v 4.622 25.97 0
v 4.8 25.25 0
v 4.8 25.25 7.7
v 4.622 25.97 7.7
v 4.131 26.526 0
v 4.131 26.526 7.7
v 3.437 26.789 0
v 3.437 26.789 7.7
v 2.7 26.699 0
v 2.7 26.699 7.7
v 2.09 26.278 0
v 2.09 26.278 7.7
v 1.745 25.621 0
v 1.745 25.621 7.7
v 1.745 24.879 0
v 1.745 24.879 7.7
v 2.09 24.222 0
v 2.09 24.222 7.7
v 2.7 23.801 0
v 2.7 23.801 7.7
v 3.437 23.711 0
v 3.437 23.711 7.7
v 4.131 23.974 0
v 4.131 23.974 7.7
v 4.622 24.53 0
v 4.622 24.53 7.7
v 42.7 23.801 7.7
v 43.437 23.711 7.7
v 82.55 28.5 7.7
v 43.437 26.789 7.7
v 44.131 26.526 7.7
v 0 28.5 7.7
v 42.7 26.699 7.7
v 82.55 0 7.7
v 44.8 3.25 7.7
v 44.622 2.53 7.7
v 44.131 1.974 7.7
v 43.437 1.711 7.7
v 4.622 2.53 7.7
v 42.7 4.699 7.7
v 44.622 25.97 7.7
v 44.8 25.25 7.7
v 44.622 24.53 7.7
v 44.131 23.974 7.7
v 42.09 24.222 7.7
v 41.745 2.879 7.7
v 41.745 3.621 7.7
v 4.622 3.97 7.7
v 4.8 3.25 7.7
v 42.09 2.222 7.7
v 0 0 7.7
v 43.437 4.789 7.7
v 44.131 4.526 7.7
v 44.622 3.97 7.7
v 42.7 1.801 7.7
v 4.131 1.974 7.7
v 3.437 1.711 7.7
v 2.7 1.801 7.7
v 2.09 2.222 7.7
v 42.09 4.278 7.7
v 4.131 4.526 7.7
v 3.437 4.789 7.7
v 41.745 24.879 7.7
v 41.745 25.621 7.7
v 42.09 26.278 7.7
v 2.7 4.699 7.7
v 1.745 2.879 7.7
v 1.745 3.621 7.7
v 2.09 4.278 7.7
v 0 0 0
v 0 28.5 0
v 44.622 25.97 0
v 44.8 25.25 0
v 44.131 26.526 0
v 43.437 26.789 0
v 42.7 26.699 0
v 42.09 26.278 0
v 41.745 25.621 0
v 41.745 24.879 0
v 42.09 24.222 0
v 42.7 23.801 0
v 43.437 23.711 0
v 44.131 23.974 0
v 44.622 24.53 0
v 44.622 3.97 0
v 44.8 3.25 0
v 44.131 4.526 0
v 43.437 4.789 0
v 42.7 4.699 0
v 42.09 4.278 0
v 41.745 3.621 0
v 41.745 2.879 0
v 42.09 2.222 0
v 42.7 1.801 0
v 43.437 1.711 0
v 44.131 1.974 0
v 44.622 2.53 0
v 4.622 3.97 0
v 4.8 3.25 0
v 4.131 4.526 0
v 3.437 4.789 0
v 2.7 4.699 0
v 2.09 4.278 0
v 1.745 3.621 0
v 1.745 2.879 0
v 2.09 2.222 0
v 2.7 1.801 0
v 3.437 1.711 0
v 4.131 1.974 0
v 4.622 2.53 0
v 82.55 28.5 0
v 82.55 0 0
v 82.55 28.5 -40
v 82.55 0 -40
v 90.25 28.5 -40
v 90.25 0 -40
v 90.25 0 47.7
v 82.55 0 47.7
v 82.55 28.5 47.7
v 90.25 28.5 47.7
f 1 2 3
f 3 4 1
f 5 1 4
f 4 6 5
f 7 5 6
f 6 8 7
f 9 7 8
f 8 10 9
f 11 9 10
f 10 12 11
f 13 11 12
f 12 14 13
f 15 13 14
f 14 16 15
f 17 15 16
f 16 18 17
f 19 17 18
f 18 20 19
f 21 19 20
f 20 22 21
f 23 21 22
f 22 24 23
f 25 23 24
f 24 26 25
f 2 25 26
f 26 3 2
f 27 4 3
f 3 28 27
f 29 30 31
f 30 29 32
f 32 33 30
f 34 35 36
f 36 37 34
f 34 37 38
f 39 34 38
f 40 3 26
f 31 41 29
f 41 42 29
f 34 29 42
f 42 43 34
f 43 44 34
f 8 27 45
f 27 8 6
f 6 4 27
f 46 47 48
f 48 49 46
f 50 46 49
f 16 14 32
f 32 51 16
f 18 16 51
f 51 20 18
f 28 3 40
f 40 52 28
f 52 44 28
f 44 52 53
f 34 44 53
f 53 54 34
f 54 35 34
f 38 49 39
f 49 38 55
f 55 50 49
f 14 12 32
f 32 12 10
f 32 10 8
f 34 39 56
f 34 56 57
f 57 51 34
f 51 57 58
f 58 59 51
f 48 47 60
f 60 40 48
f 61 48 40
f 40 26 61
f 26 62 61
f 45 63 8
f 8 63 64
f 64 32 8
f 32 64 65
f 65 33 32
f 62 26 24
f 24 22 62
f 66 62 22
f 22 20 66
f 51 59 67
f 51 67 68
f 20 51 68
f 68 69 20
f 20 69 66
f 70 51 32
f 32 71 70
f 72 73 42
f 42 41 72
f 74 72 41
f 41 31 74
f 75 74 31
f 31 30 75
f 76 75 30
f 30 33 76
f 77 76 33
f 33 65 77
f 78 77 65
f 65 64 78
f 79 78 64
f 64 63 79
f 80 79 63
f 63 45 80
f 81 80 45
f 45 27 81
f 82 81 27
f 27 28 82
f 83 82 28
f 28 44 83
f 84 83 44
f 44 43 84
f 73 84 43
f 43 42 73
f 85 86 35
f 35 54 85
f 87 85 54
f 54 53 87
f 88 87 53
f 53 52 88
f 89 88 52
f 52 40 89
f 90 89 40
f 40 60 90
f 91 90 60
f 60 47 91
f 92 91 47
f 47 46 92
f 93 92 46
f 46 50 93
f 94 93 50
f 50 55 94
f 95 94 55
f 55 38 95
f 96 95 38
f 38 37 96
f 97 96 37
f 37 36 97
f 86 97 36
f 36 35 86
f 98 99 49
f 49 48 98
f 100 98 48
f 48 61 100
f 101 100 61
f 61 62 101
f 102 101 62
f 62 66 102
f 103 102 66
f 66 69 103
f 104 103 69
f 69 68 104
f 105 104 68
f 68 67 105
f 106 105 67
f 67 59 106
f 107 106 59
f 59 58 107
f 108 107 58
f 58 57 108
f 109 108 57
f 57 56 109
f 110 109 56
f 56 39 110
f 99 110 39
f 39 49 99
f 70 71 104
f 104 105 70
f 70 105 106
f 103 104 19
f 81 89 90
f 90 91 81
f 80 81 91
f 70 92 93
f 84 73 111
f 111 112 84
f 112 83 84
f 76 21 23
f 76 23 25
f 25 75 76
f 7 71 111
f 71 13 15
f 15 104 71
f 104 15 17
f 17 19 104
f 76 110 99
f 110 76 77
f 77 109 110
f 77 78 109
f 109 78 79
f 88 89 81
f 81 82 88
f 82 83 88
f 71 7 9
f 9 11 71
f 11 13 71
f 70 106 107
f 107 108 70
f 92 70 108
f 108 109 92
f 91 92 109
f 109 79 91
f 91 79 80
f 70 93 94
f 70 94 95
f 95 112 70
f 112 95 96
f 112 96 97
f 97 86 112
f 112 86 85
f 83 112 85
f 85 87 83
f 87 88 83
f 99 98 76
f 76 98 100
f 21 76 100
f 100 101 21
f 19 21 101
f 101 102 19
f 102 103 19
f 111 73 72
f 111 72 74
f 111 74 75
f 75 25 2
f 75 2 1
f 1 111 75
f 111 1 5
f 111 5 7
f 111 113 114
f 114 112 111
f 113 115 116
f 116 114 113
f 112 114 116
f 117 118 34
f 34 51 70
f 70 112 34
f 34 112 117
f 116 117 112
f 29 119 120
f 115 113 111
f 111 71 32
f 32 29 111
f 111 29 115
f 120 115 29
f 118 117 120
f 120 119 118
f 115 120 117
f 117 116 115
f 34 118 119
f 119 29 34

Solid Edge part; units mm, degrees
sketch "Sketch1" plane through (0, 0, 0) normal (0, 0, 1) x (1, 0, 0)
  line L0 (0, 0) -> (46.5, 0)
  line L1 (46.5, 0) -> (46.5, 28.5)
  line L2 (46.5, 28.5) -> (0, 28.5)
  line L3 (0, 28.5) -> (0, 0)
extrude "Protrusion1" add sketch "Sketch1" along normal blind 7.7
hole "Bohrung_1" at (3.25, 25.25, 7.7) direction (0, 0, -1) diameter 3.1 end up to next
hole "Hole1" at (43.25, 25.25, 7.7) direction (0, 0, -1) diameter 3.1 end up to next
hole "Hole2" at (43.25, 3.25, 7.7) direction (0, 0, -1) diameter 3.1 end up to next
hole "Hole3" at (3.25, 3.25, 7.7) direction (0, 0, -1) diameter 3.1 end up to next
sketch "Sketch2" plane through (46.5, 14.25, 3.85) normal (1, 0, 0) x (0, 1, 0)
  line L0 (-14.25, 3.85) -> (14.25, 3.85)
  line L1 (14.25, 3.85) -> (14.25, -3.85)
  line L2 (14.25, -3.85) -> (-14.25, -3.85)
  line L3 (-14.25, -3.85) -> (-14.25, 3.85)
extrude "Extrusionsausprägung_2" add sketch "Sketch2" along normal blind 36.05
sketch "Sketch3" plane through (82.55, 14.25, 3.85) normal (1, 0, 0) x (0, 1, 0)
  line L0 (14.25, 3.85) -> (14.25, 43.85)
  line L1 (14.25, 43.85) -> (-14.25, 43.85)
  line L2 (-14.25, 3.85) -> (-14.25, 43.85)
  line L3 (-14.25, 3.85) -> (-14.25, -3.85)
  line L4 (-14.25, -3.85) -> (-14.25, -43.85)
  line L5 (-14.25, -43.85) -> (14.25, -43.85)
  line L6 (14.25, -43.85) -> (14.25, 3.85)
  dimension "D1" = 40
  dimension "D2" = 47.7
extrude "Extrusionsausprägung_3" add sketch "Sketch3" along normal blind 7.7
